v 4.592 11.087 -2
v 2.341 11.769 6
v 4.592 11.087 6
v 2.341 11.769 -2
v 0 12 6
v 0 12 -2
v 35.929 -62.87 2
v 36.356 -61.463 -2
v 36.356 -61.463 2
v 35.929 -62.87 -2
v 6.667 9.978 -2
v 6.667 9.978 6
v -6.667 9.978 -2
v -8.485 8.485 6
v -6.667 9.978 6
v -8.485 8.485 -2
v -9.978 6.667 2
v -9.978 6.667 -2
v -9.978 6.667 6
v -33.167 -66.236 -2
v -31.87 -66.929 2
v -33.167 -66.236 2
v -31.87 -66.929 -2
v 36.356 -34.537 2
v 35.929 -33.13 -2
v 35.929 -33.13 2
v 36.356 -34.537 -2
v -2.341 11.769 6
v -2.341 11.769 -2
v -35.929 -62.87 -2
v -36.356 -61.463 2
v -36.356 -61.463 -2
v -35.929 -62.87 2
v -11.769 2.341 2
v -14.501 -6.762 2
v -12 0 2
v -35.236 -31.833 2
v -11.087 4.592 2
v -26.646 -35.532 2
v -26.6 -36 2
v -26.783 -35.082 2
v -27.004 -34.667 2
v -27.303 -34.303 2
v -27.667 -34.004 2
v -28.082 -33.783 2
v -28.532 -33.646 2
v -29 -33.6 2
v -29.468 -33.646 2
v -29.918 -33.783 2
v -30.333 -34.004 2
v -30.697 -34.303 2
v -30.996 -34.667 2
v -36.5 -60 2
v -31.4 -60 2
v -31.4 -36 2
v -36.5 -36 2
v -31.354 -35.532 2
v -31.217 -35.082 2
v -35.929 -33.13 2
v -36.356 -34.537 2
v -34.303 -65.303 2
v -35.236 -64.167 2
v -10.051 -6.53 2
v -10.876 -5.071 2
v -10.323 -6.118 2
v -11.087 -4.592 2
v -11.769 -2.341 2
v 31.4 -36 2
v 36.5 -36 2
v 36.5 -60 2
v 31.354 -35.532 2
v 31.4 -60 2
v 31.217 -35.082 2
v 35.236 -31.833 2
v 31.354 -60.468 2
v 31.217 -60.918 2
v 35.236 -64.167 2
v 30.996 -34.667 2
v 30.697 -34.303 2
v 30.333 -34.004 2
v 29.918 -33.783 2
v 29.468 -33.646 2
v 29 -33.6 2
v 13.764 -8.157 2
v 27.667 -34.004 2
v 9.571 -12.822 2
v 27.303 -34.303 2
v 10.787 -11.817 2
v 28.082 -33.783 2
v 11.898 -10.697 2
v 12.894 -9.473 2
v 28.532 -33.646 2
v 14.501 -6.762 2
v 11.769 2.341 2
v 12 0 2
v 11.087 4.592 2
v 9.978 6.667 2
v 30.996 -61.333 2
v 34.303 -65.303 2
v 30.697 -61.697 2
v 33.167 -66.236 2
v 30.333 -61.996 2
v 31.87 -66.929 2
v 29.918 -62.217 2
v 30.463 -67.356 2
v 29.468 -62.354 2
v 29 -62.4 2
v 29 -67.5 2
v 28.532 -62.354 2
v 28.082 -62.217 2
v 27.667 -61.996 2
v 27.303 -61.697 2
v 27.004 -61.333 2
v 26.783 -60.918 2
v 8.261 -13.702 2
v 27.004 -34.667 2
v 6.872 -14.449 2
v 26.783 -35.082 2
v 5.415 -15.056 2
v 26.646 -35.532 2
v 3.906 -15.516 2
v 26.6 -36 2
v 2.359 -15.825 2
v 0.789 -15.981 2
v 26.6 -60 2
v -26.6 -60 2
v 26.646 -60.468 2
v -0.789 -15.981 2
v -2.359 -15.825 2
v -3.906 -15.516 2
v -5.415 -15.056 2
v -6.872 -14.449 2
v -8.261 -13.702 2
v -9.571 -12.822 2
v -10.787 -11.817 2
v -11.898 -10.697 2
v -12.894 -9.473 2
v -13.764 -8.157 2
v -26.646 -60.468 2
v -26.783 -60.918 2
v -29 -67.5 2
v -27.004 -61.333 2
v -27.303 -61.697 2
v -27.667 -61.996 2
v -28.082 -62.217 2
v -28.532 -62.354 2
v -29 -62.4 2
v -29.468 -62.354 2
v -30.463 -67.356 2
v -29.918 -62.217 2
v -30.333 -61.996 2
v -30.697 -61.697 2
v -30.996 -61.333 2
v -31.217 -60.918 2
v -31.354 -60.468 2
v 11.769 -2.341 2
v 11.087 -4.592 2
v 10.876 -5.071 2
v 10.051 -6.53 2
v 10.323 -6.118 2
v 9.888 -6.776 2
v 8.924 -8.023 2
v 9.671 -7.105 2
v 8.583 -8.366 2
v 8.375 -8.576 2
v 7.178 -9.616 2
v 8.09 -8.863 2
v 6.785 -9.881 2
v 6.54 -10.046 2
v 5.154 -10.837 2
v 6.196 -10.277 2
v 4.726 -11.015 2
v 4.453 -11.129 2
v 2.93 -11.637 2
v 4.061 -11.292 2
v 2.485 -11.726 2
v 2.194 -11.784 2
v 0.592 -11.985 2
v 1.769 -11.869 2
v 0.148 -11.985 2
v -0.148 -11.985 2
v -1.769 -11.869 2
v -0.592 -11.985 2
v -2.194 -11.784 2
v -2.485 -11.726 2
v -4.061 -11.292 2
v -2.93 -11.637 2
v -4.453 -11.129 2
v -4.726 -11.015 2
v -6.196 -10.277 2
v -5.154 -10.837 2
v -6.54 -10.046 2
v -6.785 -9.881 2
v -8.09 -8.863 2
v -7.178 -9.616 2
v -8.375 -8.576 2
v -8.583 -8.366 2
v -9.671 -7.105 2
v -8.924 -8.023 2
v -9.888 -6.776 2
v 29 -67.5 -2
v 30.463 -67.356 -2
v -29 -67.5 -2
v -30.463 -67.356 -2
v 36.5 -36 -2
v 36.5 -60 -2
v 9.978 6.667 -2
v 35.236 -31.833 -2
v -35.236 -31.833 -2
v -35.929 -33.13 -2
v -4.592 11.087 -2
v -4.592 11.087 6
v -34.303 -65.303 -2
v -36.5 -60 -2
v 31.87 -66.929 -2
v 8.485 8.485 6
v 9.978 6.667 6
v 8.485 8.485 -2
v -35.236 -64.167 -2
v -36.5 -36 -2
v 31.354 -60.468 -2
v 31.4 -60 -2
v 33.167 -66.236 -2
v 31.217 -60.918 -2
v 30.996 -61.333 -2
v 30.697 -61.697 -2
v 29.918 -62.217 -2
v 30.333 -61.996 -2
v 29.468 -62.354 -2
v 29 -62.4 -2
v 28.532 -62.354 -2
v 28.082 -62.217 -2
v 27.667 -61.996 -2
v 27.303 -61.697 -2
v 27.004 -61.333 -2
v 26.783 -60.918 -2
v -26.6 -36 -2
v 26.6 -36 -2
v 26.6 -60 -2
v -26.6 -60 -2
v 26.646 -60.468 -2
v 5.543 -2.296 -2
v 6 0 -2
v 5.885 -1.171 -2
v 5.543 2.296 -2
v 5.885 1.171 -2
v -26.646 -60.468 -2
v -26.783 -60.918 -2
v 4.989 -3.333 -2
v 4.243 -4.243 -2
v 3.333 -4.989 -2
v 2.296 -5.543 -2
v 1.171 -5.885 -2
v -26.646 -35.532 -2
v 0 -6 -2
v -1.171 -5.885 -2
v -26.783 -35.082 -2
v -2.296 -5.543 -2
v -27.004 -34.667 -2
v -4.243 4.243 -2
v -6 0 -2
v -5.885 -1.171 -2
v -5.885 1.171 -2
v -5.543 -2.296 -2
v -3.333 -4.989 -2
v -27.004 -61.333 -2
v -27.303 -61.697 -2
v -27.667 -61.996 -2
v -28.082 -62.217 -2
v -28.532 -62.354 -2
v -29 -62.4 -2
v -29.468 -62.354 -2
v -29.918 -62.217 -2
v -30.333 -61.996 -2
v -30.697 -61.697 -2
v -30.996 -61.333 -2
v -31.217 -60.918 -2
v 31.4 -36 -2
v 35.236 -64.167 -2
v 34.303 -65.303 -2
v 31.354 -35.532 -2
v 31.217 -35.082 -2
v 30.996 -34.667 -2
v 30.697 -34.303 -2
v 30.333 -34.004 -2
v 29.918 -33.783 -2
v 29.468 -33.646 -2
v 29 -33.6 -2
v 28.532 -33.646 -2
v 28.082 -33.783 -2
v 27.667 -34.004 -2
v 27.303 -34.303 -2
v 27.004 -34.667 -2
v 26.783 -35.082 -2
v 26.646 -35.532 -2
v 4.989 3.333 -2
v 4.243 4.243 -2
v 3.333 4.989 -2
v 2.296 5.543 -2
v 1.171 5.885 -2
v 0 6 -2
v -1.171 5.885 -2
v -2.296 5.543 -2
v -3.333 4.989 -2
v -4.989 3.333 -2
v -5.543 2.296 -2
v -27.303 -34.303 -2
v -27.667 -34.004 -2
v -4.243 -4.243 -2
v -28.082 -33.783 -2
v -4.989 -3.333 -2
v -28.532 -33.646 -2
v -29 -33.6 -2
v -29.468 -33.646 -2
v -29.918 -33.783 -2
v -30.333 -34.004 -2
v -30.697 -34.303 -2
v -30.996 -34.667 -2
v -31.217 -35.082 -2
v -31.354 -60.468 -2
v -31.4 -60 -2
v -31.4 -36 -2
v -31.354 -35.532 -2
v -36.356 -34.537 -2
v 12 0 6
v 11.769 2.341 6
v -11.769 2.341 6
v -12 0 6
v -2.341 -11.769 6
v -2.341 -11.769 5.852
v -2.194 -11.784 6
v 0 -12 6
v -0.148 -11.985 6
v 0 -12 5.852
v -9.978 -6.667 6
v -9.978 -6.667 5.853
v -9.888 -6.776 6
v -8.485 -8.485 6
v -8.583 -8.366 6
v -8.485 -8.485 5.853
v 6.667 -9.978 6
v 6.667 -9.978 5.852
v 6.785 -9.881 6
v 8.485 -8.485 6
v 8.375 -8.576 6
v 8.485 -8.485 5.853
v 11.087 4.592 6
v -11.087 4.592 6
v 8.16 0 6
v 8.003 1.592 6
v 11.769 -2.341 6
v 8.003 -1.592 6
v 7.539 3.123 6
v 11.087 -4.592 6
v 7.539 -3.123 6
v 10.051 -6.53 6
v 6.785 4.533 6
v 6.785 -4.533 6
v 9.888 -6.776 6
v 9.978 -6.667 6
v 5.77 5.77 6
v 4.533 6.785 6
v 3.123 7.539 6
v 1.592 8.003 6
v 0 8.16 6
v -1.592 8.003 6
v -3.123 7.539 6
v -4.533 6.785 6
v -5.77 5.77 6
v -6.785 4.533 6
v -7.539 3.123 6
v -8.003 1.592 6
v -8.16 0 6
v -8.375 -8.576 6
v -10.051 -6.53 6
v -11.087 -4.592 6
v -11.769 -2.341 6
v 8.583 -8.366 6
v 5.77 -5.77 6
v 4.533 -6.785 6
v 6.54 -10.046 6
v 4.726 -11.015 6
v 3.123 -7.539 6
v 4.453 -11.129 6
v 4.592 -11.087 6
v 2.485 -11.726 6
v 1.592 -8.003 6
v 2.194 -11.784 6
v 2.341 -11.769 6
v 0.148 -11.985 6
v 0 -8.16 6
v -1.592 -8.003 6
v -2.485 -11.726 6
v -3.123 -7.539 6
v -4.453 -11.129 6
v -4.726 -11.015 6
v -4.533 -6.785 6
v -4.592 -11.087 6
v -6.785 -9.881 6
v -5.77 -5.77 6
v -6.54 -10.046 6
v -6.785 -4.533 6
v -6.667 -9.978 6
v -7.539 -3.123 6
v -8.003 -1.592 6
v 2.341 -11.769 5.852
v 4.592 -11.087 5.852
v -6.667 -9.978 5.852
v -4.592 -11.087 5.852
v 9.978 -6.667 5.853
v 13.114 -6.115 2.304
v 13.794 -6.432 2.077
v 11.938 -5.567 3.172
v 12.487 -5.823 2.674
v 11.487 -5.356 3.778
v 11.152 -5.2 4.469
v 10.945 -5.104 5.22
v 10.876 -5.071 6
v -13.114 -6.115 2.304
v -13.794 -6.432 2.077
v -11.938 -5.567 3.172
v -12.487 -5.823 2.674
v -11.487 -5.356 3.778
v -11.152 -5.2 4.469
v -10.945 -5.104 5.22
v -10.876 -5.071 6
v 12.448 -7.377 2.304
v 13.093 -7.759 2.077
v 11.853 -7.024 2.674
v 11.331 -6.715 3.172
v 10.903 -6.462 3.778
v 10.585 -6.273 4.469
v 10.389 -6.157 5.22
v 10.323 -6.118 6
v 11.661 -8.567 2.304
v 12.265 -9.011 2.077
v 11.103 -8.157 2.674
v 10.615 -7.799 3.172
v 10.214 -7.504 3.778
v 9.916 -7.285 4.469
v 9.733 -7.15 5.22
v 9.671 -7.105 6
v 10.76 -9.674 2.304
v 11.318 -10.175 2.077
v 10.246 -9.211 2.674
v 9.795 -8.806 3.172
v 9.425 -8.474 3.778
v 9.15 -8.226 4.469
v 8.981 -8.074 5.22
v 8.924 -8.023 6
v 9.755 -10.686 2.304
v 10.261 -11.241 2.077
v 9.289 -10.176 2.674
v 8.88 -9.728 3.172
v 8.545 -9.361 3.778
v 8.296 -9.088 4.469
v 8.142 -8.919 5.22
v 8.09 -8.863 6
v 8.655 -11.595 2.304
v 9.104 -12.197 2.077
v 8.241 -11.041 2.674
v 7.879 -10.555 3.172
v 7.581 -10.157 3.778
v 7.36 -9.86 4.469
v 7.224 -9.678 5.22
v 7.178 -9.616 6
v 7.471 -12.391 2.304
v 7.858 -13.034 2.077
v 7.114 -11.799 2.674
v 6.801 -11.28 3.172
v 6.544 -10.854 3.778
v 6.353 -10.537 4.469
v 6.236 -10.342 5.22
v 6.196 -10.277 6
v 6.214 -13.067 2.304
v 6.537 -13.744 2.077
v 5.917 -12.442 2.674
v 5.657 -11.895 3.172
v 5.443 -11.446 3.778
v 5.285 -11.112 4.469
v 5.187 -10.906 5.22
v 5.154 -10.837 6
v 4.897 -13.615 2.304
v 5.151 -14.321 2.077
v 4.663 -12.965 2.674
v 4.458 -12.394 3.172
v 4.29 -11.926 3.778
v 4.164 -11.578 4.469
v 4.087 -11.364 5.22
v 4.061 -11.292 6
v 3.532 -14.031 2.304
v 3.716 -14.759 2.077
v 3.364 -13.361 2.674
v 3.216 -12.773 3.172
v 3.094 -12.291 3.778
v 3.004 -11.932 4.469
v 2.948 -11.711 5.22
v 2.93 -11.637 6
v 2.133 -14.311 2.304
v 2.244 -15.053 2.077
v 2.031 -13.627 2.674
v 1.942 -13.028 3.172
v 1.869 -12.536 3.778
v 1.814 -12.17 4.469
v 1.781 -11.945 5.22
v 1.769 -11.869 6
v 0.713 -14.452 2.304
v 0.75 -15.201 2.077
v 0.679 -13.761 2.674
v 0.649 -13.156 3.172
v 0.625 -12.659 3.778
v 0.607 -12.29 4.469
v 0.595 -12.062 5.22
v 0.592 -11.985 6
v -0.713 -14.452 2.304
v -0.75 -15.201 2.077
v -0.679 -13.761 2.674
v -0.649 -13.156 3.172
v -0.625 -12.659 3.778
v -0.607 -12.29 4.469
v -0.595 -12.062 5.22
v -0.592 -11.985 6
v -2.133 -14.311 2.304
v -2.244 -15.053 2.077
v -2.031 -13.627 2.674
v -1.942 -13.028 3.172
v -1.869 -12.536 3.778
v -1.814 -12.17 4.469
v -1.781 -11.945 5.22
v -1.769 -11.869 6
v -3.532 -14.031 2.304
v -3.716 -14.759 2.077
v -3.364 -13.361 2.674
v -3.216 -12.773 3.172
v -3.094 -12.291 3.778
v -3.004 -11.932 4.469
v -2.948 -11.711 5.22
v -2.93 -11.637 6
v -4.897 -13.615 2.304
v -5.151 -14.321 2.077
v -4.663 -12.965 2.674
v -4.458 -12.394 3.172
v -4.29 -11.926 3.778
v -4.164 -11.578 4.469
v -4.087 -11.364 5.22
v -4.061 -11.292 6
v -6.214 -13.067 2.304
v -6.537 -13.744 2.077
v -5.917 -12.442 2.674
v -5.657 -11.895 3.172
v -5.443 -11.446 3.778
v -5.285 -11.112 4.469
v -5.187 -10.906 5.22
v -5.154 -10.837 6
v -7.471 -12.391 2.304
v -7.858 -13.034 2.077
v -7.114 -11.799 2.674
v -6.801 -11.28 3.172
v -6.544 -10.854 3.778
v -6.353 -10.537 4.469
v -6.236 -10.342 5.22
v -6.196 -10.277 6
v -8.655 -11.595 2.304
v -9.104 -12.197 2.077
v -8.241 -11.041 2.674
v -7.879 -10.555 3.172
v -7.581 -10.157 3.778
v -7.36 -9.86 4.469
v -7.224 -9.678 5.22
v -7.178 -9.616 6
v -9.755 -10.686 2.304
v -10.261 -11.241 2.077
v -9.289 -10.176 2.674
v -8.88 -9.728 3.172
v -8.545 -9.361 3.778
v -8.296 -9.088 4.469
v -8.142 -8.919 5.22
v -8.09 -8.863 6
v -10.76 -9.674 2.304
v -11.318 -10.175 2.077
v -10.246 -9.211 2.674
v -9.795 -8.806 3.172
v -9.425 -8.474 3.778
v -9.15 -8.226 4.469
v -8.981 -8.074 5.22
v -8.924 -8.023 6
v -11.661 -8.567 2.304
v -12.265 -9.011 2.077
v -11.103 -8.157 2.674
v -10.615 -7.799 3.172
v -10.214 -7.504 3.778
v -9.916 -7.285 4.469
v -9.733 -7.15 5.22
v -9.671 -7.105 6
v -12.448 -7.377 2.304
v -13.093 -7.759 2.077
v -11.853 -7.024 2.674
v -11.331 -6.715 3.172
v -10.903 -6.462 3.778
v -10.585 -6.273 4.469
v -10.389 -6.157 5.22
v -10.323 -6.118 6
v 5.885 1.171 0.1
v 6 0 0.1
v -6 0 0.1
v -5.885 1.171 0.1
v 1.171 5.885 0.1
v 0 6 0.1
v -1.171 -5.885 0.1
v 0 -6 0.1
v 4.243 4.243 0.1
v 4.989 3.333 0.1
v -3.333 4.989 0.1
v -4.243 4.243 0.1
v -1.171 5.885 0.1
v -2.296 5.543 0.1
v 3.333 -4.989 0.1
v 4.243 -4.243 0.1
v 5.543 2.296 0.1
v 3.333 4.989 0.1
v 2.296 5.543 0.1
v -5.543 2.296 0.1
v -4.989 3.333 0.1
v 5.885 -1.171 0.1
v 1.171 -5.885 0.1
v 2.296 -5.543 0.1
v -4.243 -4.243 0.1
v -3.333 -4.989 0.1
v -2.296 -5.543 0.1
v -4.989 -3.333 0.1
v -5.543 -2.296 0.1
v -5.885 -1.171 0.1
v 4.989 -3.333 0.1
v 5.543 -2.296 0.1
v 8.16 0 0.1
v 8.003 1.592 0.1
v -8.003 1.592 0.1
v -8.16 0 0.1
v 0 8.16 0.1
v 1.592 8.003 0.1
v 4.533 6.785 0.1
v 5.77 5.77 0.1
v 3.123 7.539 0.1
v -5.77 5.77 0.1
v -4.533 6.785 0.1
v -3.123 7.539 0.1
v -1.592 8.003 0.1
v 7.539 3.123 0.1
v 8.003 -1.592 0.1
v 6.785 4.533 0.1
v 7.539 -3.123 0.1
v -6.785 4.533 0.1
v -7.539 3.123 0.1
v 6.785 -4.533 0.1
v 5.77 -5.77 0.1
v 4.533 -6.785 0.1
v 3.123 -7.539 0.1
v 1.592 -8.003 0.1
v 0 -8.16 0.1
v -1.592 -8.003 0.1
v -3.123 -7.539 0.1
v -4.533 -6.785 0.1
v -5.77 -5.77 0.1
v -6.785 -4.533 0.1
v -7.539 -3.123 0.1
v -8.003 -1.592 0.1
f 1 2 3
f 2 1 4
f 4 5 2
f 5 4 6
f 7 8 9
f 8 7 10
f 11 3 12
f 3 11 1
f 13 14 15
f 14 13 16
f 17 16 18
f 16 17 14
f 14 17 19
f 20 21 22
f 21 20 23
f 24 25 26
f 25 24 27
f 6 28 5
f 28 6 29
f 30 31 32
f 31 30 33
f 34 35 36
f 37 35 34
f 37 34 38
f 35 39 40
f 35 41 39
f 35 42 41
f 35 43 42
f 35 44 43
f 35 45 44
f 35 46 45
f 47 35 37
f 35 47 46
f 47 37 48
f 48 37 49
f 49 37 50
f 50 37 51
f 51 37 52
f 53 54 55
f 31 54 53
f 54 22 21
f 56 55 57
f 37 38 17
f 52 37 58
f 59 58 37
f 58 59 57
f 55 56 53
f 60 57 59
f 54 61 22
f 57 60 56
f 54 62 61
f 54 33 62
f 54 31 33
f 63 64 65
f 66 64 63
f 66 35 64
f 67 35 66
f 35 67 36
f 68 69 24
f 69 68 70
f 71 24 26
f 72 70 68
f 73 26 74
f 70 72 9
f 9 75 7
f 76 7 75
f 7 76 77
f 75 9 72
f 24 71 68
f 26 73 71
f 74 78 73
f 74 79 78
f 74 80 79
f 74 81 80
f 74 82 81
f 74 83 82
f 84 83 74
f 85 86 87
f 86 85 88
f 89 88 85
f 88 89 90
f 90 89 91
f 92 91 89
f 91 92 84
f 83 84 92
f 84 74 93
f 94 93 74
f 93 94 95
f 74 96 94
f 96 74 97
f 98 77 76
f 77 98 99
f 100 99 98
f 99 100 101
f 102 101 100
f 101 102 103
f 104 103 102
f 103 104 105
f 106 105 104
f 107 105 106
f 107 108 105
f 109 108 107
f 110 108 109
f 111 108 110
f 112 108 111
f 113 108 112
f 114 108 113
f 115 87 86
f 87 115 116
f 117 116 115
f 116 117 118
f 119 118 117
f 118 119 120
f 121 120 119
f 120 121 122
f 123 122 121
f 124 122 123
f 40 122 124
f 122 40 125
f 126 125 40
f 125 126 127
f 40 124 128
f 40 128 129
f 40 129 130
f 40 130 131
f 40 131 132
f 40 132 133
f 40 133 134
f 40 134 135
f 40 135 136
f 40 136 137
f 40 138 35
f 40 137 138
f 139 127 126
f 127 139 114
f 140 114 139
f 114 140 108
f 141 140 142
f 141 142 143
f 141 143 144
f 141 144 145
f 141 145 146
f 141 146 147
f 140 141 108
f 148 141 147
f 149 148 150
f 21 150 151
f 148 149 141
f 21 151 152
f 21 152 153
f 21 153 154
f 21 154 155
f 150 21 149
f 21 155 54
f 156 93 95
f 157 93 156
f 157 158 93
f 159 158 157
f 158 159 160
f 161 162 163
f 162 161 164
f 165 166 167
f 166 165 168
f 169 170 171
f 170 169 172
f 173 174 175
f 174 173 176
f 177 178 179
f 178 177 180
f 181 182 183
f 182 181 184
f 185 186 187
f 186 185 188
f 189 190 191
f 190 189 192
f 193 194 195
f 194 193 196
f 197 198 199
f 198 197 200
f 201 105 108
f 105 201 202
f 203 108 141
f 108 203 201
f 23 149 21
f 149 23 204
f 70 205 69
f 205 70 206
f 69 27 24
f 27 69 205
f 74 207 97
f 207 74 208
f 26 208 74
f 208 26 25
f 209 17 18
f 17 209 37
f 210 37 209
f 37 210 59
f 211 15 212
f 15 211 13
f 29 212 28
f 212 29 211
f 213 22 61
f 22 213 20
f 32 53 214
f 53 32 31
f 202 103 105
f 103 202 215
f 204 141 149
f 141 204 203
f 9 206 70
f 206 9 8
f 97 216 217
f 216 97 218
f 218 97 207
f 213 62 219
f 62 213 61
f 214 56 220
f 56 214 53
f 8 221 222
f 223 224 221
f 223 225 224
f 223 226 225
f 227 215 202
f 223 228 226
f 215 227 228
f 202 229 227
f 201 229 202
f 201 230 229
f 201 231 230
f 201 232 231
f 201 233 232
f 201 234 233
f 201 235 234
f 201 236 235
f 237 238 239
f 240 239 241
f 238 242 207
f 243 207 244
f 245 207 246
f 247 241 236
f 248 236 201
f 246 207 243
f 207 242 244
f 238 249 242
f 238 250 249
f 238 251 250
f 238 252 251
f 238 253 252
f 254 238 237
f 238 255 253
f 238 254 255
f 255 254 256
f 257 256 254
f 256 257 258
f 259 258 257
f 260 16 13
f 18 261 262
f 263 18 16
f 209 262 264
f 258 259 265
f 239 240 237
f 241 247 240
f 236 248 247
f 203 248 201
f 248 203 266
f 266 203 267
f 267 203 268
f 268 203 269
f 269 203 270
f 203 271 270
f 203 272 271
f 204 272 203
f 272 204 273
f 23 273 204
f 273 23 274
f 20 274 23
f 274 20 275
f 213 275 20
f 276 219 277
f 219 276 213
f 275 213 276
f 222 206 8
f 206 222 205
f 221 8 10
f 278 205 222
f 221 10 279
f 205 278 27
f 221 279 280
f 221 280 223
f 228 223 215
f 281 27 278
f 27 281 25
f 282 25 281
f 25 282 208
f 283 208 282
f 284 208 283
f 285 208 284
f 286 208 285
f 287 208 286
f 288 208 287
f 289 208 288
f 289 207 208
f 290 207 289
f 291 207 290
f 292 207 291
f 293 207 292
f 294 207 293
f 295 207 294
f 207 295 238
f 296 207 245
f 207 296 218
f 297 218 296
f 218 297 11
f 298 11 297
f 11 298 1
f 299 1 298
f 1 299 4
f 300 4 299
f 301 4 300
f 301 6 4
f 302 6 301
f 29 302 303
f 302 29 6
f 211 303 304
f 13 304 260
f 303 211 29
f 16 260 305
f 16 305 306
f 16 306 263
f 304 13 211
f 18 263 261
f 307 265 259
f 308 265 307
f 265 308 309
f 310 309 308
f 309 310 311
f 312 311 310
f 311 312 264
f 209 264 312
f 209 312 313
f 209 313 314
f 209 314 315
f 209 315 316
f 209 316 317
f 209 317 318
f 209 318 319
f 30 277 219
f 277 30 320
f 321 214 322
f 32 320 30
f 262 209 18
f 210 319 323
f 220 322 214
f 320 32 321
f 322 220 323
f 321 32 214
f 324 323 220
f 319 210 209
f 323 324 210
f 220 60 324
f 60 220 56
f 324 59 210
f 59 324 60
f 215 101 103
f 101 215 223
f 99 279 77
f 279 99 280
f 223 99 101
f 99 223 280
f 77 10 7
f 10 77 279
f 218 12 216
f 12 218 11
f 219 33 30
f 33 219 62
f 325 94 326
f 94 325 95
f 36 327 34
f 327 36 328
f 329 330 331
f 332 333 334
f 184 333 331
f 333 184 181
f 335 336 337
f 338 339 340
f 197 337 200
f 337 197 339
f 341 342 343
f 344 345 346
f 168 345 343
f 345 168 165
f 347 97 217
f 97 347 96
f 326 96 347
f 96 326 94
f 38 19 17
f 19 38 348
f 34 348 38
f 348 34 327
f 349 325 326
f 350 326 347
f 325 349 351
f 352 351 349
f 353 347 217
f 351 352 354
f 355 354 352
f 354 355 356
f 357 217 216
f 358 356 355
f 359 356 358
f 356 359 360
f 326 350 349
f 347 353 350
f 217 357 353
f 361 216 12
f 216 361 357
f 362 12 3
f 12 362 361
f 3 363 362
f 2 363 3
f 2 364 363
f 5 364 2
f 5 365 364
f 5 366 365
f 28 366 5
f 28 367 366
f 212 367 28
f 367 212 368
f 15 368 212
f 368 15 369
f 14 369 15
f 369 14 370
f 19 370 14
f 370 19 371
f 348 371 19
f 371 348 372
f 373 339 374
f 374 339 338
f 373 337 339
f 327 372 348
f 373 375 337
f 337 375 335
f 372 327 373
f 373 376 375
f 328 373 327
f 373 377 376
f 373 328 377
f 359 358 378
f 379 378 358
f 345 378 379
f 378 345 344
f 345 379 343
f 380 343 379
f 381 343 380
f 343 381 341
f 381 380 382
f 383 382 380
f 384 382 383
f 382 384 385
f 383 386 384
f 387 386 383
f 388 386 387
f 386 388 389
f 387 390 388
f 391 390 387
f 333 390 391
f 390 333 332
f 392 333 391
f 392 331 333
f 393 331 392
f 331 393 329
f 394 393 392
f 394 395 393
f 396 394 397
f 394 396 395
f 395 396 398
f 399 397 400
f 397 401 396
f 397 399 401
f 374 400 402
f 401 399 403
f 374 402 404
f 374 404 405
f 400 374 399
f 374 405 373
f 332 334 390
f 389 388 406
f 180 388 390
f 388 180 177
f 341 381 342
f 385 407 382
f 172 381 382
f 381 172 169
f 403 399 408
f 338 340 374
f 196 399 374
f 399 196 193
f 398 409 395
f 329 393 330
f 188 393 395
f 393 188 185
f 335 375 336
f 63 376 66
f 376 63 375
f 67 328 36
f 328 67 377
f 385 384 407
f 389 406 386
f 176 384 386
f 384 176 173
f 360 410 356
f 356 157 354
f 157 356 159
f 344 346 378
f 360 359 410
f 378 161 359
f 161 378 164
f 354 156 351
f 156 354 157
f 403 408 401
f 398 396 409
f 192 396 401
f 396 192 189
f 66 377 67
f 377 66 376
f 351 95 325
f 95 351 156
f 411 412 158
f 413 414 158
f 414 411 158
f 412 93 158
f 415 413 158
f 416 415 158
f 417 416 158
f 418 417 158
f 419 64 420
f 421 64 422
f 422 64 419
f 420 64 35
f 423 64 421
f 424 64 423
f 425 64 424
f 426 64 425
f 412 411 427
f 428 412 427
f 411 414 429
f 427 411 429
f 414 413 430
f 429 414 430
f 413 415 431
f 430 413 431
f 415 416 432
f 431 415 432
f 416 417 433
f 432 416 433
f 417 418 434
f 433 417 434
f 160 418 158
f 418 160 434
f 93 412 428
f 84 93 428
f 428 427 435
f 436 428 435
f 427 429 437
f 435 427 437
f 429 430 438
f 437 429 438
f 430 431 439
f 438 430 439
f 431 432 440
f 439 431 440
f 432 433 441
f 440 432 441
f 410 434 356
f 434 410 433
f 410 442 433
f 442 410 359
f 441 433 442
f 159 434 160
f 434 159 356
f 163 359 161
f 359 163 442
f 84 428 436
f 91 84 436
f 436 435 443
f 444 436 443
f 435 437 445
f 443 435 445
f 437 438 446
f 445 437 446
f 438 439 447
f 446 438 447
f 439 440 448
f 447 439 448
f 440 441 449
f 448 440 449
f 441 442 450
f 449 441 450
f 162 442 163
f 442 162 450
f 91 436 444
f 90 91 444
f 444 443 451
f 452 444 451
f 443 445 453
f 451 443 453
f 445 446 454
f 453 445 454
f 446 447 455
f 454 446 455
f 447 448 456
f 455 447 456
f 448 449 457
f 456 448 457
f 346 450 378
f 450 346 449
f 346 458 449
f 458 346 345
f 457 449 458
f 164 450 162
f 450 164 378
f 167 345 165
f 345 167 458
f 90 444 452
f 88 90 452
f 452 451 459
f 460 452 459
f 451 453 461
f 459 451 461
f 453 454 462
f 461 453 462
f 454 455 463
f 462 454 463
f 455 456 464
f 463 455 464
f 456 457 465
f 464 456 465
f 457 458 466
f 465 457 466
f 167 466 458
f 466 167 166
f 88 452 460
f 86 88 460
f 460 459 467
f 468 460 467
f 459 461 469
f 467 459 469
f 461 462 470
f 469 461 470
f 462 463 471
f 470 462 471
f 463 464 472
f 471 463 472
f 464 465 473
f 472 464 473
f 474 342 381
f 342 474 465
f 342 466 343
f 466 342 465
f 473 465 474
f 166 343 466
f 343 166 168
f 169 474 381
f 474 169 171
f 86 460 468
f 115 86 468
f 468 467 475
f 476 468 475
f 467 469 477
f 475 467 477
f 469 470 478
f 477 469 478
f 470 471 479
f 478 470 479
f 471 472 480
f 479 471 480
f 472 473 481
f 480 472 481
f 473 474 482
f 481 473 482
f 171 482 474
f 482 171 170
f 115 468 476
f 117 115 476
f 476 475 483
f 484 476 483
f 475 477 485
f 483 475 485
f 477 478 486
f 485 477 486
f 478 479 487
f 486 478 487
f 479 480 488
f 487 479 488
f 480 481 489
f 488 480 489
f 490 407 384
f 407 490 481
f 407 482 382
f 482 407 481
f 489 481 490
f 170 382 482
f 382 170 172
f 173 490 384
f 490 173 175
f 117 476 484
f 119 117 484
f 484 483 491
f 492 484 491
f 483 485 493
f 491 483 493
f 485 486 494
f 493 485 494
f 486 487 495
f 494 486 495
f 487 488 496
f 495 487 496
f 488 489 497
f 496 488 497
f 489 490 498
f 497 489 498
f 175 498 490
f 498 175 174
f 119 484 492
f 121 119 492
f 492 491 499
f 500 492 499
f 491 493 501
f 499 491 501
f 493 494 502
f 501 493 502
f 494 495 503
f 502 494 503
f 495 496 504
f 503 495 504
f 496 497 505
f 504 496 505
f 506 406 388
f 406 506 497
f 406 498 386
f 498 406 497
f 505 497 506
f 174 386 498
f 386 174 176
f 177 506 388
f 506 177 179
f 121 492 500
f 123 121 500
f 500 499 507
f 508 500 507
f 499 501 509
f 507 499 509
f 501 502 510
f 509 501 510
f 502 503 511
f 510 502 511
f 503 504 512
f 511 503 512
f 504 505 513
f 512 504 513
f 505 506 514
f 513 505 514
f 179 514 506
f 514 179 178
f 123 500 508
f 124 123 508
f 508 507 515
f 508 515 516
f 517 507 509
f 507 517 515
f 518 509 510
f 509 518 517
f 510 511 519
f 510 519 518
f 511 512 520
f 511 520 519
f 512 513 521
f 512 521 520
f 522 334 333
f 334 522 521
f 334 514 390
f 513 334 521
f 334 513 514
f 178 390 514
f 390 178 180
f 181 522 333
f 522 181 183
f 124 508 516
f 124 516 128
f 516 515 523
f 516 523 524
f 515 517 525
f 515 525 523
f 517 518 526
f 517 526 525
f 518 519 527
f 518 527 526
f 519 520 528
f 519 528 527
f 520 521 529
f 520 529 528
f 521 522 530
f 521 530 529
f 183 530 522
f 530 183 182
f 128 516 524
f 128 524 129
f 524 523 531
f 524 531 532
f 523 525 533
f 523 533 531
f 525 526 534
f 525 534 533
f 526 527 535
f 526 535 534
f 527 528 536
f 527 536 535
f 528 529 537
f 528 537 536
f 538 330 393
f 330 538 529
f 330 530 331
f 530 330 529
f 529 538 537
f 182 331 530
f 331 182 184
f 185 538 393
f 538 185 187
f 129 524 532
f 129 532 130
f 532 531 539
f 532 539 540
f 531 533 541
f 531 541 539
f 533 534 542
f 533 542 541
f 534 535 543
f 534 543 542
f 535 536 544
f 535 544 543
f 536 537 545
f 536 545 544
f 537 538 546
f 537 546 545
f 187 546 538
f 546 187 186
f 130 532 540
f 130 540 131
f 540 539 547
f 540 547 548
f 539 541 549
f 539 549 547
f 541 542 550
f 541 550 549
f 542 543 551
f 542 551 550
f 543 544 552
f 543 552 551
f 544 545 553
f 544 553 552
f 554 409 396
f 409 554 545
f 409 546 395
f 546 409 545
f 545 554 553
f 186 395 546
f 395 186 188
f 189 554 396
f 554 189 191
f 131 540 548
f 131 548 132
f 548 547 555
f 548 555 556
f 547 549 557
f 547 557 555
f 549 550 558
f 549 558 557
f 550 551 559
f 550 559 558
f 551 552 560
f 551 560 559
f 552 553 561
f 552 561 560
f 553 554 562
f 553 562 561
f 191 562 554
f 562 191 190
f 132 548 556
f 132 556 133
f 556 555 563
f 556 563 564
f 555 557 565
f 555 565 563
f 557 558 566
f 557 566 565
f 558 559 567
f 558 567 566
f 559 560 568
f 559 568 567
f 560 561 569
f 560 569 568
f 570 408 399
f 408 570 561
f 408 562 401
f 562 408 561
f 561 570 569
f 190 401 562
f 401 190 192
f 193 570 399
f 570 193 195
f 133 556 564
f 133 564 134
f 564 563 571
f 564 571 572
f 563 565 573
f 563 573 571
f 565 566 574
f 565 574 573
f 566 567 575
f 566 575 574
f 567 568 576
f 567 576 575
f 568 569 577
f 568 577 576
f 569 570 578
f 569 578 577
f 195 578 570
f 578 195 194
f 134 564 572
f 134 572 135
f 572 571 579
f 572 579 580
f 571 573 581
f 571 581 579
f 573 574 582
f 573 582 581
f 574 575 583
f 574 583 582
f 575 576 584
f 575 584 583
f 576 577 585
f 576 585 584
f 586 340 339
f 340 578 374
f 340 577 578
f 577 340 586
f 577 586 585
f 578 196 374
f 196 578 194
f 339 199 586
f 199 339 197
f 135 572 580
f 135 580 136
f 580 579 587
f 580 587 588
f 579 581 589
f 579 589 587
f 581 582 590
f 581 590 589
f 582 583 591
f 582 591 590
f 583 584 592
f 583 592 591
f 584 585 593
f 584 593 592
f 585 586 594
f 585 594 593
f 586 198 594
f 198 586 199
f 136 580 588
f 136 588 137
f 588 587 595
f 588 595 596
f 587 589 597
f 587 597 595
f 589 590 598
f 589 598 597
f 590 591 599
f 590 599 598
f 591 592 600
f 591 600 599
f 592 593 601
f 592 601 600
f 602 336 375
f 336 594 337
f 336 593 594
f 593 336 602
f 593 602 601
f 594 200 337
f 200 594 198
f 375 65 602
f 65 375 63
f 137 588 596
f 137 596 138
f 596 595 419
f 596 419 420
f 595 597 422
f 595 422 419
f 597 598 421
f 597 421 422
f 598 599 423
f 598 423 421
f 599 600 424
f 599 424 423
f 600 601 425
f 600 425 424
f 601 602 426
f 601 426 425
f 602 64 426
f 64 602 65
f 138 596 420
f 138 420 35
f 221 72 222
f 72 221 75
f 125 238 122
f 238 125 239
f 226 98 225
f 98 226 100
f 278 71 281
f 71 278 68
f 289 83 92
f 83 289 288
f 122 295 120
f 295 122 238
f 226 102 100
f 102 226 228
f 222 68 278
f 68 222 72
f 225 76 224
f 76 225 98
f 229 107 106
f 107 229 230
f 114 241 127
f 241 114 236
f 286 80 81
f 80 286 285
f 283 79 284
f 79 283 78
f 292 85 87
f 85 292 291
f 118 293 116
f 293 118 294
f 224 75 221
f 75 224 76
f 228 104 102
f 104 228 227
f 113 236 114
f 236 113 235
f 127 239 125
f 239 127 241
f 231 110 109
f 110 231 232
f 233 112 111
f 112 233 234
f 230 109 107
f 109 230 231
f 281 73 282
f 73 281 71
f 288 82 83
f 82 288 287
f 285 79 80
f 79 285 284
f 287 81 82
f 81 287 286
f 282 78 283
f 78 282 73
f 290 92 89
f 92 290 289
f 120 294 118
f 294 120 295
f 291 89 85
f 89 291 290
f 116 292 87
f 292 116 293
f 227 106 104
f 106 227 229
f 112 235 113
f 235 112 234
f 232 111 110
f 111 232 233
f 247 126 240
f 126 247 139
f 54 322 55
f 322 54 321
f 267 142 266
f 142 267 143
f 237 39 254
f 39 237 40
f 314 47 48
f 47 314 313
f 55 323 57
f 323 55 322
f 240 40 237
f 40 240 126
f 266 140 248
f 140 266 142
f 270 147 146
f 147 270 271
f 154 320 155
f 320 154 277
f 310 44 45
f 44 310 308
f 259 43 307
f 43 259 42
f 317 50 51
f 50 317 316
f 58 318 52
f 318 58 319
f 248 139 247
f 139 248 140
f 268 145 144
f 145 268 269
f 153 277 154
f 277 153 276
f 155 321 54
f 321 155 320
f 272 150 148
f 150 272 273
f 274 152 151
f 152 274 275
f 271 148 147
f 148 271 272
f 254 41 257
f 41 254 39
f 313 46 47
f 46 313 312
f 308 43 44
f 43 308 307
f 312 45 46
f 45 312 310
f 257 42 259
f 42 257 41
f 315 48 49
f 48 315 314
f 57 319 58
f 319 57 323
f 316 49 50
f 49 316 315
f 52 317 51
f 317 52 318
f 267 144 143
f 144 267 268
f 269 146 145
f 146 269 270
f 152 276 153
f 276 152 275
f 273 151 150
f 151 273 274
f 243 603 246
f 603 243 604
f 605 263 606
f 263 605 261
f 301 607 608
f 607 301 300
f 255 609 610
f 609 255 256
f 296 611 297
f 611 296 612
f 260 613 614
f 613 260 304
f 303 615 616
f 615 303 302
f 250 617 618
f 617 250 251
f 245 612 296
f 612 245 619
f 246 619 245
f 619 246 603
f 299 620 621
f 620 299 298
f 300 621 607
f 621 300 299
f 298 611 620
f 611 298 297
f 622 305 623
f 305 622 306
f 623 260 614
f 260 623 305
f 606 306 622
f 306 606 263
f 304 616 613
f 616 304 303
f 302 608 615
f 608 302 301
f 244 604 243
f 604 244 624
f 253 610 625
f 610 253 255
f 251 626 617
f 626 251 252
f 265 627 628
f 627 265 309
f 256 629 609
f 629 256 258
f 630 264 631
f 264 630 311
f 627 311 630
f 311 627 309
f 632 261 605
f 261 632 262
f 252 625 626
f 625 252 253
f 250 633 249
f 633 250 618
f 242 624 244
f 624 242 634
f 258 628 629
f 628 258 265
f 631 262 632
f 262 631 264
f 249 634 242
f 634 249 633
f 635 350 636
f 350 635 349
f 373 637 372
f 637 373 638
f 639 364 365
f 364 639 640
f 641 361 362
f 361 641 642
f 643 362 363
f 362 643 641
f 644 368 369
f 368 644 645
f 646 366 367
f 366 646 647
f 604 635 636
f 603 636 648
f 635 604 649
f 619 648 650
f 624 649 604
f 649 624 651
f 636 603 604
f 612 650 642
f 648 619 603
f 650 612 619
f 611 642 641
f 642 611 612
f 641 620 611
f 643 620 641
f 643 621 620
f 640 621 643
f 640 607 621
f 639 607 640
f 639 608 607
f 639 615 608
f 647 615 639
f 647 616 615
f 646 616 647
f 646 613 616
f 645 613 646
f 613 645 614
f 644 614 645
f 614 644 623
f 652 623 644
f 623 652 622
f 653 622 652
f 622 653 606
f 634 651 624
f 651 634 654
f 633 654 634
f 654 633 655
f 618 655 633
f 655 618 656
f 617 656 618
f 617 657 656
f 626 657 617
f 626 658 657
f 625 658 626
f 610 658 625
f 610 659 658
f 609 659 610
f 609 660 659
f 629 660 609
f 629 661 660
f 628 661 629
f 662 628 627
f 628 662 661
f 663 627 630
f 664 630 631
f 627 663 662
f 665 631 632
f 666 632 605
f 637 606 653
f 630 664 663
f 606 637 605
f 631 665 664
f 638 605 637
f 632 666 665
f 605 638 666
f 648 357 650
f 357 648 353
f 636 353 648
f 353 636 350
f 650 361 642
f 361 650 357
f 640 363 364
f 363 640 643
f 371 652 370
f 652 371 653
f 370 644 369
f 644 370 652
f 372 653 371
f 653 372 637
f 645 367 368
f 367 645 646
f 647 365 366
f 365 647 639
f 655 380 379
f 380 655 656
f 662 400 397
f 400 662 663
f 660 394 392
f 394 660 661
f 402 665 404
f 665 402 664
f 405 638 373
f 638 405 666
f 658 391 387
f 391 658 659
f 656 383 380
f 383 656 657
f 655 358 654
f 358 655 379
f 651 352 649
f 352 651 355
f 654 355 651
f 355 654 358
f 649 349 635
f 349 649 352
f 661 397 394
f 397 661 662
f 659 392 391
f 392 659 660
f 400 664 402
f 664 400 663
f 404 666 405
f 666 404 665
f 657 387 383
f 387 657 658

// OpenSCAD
// file: Tooth Profile.scad
//Simple Trapezoid Tooth Profile - used by Belt - don't print
use <Chamfer-Fillet-Machine.scad>
pressure_angle = 14.5;//degrees
tooth_pitch = 16;//mm
half_tooth_pitch = tooth_pitch/2;
root_fillet_radius = 2;//mm
tooth_height = 5;//mm

function tooth_points(
    pressure_angle=14.5,
    tooth_pitch=16,
    root_fillet_radius=2,
    tooth_height=12,
    descent=0.1) = 
    let(
        //half pitch
        half_tooth_pitch = tooth_pitch/2,
        
        //find the tangent contact points
        x_fact = cos(pressure_angle),
        y_fact = sin(pressure_angle),
        
        //find the x and y distance from circle centre
        dx_radial = x_fact * root_fillet_radius,
        dy_radial = y_fact * root_fillet_radius,

        //find the tangent coordinates
        x_tang = -half_tooth_pitch + dx_radial,
        y_tang = root_fillet_radius - dy_radial,

        //find gradient of the radial
        radial_gradient = -dy_radial / dx_radial,

        //find gradient of tangent
        tangent_gradient = -1 / radial_gradient,

        //calculate intersection point on baseline (y = 0)
        x_base_disp = y_tang / tangent_gradient,
        x_base = x_tang - x_base_disp,

        //calculate intersection point on top (y = height)
        y_top_disp = (tooth_height - y_tang),
        x_top_disp = y_top_disp / tangent_gradient,
        x_top = x_tang + x_top_disp,
        pts = [
            //[0, -descent, 0],
            [-(half_tooth_pitch + root_fillet_radius), -descent, 0],
            [-(half_tooth_pitch + root_fillet_radius), 0, 0],
            [x_base, 0, root_fillet_radius],
            [x_top, tooth_height, 1],
            [-x_top, tooth_height, 1],
            [-x_base, 0, root_fillet_radius],
            [half_tooth_pitch + root_fillet_radius, 0, 0],
            [half_tooth_pitch + root_fillet_radius, -descent, 0],
            [-(half_tooth_pitch + root_fillet_radius), -descent, 0]
            //[0, -descent, 0]
        ]
    ) pts;

module tooth_pitch_debug(
    pressure_angle=14.5,
    tooth_pitch=16,
    root_fillet_radius=2,
    tooth_height=12) {

    //draw 2 circles to represent the root fillets, and space them apart by the pitch
    translate([-tooth_pitch/2, root_fillet_radius]) circle(root_fillet_radius, $fn=32);
    translate([tooth_pitch/2, root_fillet_radius]) circle(root_fillet_radius, $fn=32);

    //simulate a zero degree pressure angle
    %translate([0, tooth_height/2]) square([tooth_pitch - (2 * root_fillet_radius), tooth_height], center=true);

    //find the tangent contact points
    x_fact = cos(pressure_angle);
    y_fact = sin(pressure_angle);
    echo("x_fact: ", x_fact, "y_fact: ", y_fact);
    //find the x and y distance from circle centre
    dx_radial = x_fact * root_fillet_radius;
    dy_radial = y_fact * root_fillet_radius;
    echo("dx_radial: ", dx_radial, "dy_radial: ", dy_radial);

    x_tang = -half_tooth_pitch + dx_radial;
    y_tang = root_fillet_radius - dy_radial;
    echo("x_tang: ", x_tang, "y_tang: ", y_tang);

    //annotate tangent contact points
    color("black", 0.25) translate([x_tang, y_tang]) circle(0.5, $fn=32);
    color("black", 0.25) translate([-x_tang, y_tang]) circle(0.5, $fn=32);

    //annotate radial
    color("blue") translate([-half_tooth_pitch, root_fillet_radius]) vector_arrow([dx_radial, -dy_radial]);

    //find gradient of the radial
    radial_gradient = -dy_radial / dx_radial;
    echo("radial_gradient: ", radial_gradient);

    //find gradient of tangent
    tangent_gradient = -1 / radial_gradient;
    echo("tangent_gradient: ", tangent_gradient);

    //calculate intersection point on baseline (y = 0)
    x_base_disp = y_tang / tangent_gradient;
    x_base = x_tang - x_base_disp;
    echo("x_base_disp: ", x_base_disp, "x_base: ", x_base);

    //annotate triangle
    color("yellow", 0.25) polygon([
        [x_tang, y_tang],
        [x_tang, 0],
        [x_base, 0]
    ]);

    //annotate base contact points
    color("black", 0.25) translate([x_base, 0]) circle(0.5, $fn=32);

    //create tangent line vector
    Vtang = [dy_radial, dx_radial];
    Vtangex = extend_vect(Vtang, 20);
    echo("Vtang: ", Vtang);

    //annotate tangents
    color("red") translate([x_base, 0]) vector_line(Vtangex);

    //label pressure angle
    color("black") translate([-half_tooth_pitch, tooth_height + 1]) text(str("Pressure Angle: ", pressure_angle, " degrees"), size=0.5);

    //calculate intersection point on top (y = height)
    y_top_disp = (tooth_height - y_tang);
    x_top_disp = y_top_disp / tangent_gradient;
    echo("y_top_disp: ", y_top_disp, "x_top_disp: ", x_top_disp);
    x_top = x_tang + x_top_disp;
    echo("x_top: ", x_top);

    //annotate triangle
    color("yellow", 0.35) polygon([
        [x_tang, y_tang],
        [x_tang, tooth_height],
        [x_top, tooth_height]
    ]);

    //annotate top contact points
    color("black", 0.25) translate([x_top, tooth_height]) circle(0.5, $fn=32);
}
*tooth_pitch_debug();
// file: Constants.scad
/*
    Constants.scad contains all the global constants
*/
use <Tooth Profile.scad>

//idler hub
idle_bearing_od = 16;//mm
idle_bearing_fit_dia = idle_bearing_od * 1.03;//push-in fit for bearing
idle_bearing_thickness = 5.25;//push-in fit
hub_thickness = 15;
hub_dia = 24;
idle_shaft_hole_dia = 6.5;//clearance for 6mm shaft
scraper_fix_hole_dia = 4.5;//mm
idler_width = 25;//mm
idler_dia = 50;//mm
idler_spacing = 0.5;//mm
radial_spacing = 5;//mm
tube_insertion = 25;//mm
tube_outer_dim = 10;//10mm square tube
tube_dim = sqrt(tube_outer_dim^2 + tube_outer_dim^2) * 1.04;
echo("tube_outer_dim:", tube_outer_dim, "tube_dim:", tube_dim);

//idler wheel
idle_wheel_thickness = 25;
idle_wheel_dia = 50;
idle_shaft_dia = 6.25;//mm
tooth_space_thickness = 11;//mm
tooth_space_dia = 35;//mm
runner_thickness = (idle_wheel_thickness - tooth_space_thickness)/2;
edge_radius = 1;
dee_shaft_offset = 1;
spigot_scale_factor = 1.0;//grow spigot hole if necessary for a tight fit

//idler axle
idle_rod_dia = 5.92;//mm tight fit for bearing
idle_rod_length = 25 + (2 * 0.5) + (2 * 15) + (2 * 2);//mm idler width + 2 spacers + 2 hubs + 2 washers
echo("idle_rod_length", idle_rod_length);
idle_rod_cap_length = 2;//mm
idle_rod_clip_width = 1;//mm
idle_rod_clip_dia = 4.5;//mm

//knurled wheel and locknut
//knob parameters
KNOB_DIAM=25;
//screw parameters
SCREWHEAD_FACETOFACE=0;
SCREWHEAD_DEPTH=12;
THRU_HOLE_DIAM=9.5;
//grippy cutouts parameters
NUM_GRIP_CUTOUTS=20;
GRIP_CUTOUT_DIAM=4;
CUTOUT_RADIUS_ADJ=1;
KNURLED_WHEEL_HEIGHT=6;
KNURLED_WHEEL_NUM_TURNS = 3.5;
LOCKNUT_HEIGHT=3;
LOCKNUT_NUM_TURNS = 1.375;

//motor plate
gearbox_collar_hole_dia = 22.2;//mm
motor_plate_thickness = 4;//mm
motor_plate_corner_dia = 15;//mm
plan_motor_dia = 36.3;//mm
plan_shoulder_base_thickness = 3;// mm
plan_shoulder_thickness = 5;// mm
plan_shoulder_height = 20;// mm

//planetary motor bracket
pmb_motor_dia = 36;//mm 35.5 plus clearance
pmb_base_thickness = 3;//mm
pmb_foot_thickness = 5;//mm
pmb_width = 10;//mm
pmb_thickness = 4;//mm
pmb_chamfer_radius = 1;//mm
pmb_fix_hole_dia = 4.5;//mm

//bearing backplate
drive_bearing_bush_dia = 24;//mm
drive_bearing_od = 16;//mm
drive_bearing_fit_dia = drive_bearing_od * 1.02;//push fit for bearing
drive_bearing_recess = 6;//mm 

//drive sprocket
sprocket_spacing = 0.5;//mm
tooth_height = 5;//mm 4 + 1 to sink into cylinder

//tube clamp
clamp_width = 10;//mm
clamp_effect = 0.75;//mm
clamp_int_dia = 0.5;//mm
clamp_ext_dia = 2.5;//mm
clamp_fix_hole_dia = 4.8;//mm
clamp_washer_dia = 13;// for 12.5mm washer
clamp_washer_thickness = 1;//mm

//drive spindle
plan_motor_drive_shaft_dia = 8;//mm
spindle_outer_dia = 20;//mm fn=6 for hex
spindle_length = 25;//mm
spindle_shoulder_dia = 30;//mm
spindle_shoulder_width = 10;//mm
drive_sprocket_shaft_hole_dia = 8.32;//for 8mm shaft
spindle_dee_shaft_offset = 1;//mm
spindle_dee_shaft_dia = plan_motor_drive_shaft_dia * 1.0175;//mm interference fit
spindle_drive_shaft_length = 25;//mm shaft is 17.5 only 14mm of which is D'eed
spindle_bearing_shaft_dia = 9.3;//space for M8 thread
spindle_thread_num_turns = 9;
spindle_thread_x_factor = 1.04;
spindle_thread_y_factor = 1.04;
spindle_thread_z_factor = 1.0;

//drive sprocket shaft
drive_sprocket_shaft_num_turns = 14;
bearing_section_length = 10;//mm
back_bearing_stub_dia = 7.95;//mm for 8mm hole in bearing

//drive sprocket cog
tth_num_teeth = 9;
tth_pitch_angle = 360 / tth_num_teeth;
drive_sprocket_dia = 50;
tooth_depression = 1.1;//to smooth base fillets
sprock_tooth_x_scale = 0.8;//put space between teeth
sprock_tooth_y_scale = 1.05;//
sprock_thickness = 11;//mm for a 7|11|7 sandwich
tth_sprock_press_angle = 5;
tth_tooth_pitch = 8;
tth_root_fillet_radius = 1;
tth_tooth_height = 5;
sprock_tooth_profile_pts = tooth_points(tth_sprock_press_angle, tth_tooth_pitch, tth_root_fillet_radius, tth_tooth_height);

//drive plain cog
plain_cog_dia = 50;
plain_cog_thickness = 7;
plain_cog_rim_thickness = 3;//mm

//just for assembly
wheelbase = 200;//mm horizontal distance between idle wheel centres
track_triangle_height = 60;//mm vertical distance between drive motor and tube centres
// main file
//Bearing BackPlate
include <Constants.scad>

module back_plate() {
    /*
        generates a plate that accomodates any combination of cartesian/polar holes/slots
        the common origin aligns with the motor shaft
    */

    cart_holes = [
        // x, y, d
        [29, -50, 4.8],     // wheelbase tube mount
        [-29, -50, 4.8]     // wheelbase tube mount
    ];
    
    cart_slots = [
        // x1, y1, x2, y2, d
        [29, -36, 29, -60, 4.8],
        [-29, -36, -29, -60, 4.8]
    ];
    polar_holes = [
        //r, theta, d
    ];

    difference() {
        union() {
            //plate corners
            hull() {
                //bearing housing at origin
                cylinder(h=motor_plate_thickness, d=drive_bearing_bush_dia, $fn=32, center=true);
                //cartesian holes
                for (i=[0:1:len(cart_holes)-1]) {
                    translate([cart_holes[i][0], cart_holes[i][1], 0]) cylinder(h=motor_plate_thickness, d=motor_plate_corner_dia, $fn=32, center=true);
                }
                //cartesian slots
                for (i=[0:1:len(cart_slots)-1]) {
                    translate([cart_slots[i][0], cart_slots[i][1], 0]) cylinder(h=motor_plate_thickness, d=motor_plate_corner_dia, $fn=32, center=true);
                    translate([cart_slots[i][2], cart_slots[i][3], 0]) cylinder(h=motor_plate_thickness, d=motor_plate_corner_dia, $fn=32, center=true);
                }
                //polar holes
                for (i=[0:1:len(polar_holes)-1]) {
                    rotate([0, 0, -polar_holes[i][1]]) translate([polar_holes[i][0], 0, 0]) cylinder(h=motor_plate_thickness, d=motor_plate_corner_dia, $fn=32, center=true);
                }            
            }//end hull
            //bearing bush
            translate([0, 0, drive_bearing_recess/2]) cylinder(h=drive_bearing_recess * 1, d=drive_bearing_bush_dia, $fn=32, center=true);
            //bearing bush fillet
            translate([0, 0, motor_plate_thickness/2]) circular_fillet(extent=4, dia=drive_bearing_bush_dia, angle=130);
        }//end union
            
        //axle clearance at origin
        cylinder(h=motor_plate_thickness*2, d=drive_bearing_bush_dia/2, $fn=32, center=true);

        //cartesian holes
        for (i=[0:1:len(cart_holes)-1]) {
            translate([cart_holes[i][0], cart_holes[i][1], 0]) cylinder(h=motor_plate_thickness * 16, d=cart_holes[i][2], $fn=32, center=true);
        }
        
        //cartesian slots
        for (i=[0:1:len(cart_slots)-1]) {
            hull() {
                translate([cart_slots[i][0], cart_slots[i][1], 0]) cylinder(h=motor_plate_thickness * 2, d=cart_slots[i][4], $fn=32, center=true);
                translate([cart_slots[i][2], cart_slots[i][3], 0]) cylinder(h=motor_plate_thickness * 2, d=cart_slots[i][4], $fn=32, center=true);
            }
        }
        //polar holes
        for (i=[0:1:len(polar_holes)-1]) {
            rotate([0, 0, -polar_holes[i][1]]) translate([polar_holes[i][0], 0, 0]) cylinder(h=motor_plate_thickness * 2, d=polar_holes[i][2], $fn=32, center=true);
        }
        //bearing recess
        translate([0, 0, drive_bearing_recess + 0.1]) cylinder(h=drive_bearing_recess * 2, d=drive_bearing_fit_dia, $fn=32, center=true);
    }    
}

module circular_fillet(extent=10, dia=10, angle=360) {
    rotate([0, 0, -(90 - (angle/2))]) rotate_extrude(angle=-angle, $fn=64) translate([extent + (dia/2), extent]) mirror([1, 1, 0]) difference() {
        square(extent);
        circle(extent, $fn=32);
    }
}
back_plate();
*circular_fillet(extent=10, dia=drive_bearing_bush_dia, angle=180);
